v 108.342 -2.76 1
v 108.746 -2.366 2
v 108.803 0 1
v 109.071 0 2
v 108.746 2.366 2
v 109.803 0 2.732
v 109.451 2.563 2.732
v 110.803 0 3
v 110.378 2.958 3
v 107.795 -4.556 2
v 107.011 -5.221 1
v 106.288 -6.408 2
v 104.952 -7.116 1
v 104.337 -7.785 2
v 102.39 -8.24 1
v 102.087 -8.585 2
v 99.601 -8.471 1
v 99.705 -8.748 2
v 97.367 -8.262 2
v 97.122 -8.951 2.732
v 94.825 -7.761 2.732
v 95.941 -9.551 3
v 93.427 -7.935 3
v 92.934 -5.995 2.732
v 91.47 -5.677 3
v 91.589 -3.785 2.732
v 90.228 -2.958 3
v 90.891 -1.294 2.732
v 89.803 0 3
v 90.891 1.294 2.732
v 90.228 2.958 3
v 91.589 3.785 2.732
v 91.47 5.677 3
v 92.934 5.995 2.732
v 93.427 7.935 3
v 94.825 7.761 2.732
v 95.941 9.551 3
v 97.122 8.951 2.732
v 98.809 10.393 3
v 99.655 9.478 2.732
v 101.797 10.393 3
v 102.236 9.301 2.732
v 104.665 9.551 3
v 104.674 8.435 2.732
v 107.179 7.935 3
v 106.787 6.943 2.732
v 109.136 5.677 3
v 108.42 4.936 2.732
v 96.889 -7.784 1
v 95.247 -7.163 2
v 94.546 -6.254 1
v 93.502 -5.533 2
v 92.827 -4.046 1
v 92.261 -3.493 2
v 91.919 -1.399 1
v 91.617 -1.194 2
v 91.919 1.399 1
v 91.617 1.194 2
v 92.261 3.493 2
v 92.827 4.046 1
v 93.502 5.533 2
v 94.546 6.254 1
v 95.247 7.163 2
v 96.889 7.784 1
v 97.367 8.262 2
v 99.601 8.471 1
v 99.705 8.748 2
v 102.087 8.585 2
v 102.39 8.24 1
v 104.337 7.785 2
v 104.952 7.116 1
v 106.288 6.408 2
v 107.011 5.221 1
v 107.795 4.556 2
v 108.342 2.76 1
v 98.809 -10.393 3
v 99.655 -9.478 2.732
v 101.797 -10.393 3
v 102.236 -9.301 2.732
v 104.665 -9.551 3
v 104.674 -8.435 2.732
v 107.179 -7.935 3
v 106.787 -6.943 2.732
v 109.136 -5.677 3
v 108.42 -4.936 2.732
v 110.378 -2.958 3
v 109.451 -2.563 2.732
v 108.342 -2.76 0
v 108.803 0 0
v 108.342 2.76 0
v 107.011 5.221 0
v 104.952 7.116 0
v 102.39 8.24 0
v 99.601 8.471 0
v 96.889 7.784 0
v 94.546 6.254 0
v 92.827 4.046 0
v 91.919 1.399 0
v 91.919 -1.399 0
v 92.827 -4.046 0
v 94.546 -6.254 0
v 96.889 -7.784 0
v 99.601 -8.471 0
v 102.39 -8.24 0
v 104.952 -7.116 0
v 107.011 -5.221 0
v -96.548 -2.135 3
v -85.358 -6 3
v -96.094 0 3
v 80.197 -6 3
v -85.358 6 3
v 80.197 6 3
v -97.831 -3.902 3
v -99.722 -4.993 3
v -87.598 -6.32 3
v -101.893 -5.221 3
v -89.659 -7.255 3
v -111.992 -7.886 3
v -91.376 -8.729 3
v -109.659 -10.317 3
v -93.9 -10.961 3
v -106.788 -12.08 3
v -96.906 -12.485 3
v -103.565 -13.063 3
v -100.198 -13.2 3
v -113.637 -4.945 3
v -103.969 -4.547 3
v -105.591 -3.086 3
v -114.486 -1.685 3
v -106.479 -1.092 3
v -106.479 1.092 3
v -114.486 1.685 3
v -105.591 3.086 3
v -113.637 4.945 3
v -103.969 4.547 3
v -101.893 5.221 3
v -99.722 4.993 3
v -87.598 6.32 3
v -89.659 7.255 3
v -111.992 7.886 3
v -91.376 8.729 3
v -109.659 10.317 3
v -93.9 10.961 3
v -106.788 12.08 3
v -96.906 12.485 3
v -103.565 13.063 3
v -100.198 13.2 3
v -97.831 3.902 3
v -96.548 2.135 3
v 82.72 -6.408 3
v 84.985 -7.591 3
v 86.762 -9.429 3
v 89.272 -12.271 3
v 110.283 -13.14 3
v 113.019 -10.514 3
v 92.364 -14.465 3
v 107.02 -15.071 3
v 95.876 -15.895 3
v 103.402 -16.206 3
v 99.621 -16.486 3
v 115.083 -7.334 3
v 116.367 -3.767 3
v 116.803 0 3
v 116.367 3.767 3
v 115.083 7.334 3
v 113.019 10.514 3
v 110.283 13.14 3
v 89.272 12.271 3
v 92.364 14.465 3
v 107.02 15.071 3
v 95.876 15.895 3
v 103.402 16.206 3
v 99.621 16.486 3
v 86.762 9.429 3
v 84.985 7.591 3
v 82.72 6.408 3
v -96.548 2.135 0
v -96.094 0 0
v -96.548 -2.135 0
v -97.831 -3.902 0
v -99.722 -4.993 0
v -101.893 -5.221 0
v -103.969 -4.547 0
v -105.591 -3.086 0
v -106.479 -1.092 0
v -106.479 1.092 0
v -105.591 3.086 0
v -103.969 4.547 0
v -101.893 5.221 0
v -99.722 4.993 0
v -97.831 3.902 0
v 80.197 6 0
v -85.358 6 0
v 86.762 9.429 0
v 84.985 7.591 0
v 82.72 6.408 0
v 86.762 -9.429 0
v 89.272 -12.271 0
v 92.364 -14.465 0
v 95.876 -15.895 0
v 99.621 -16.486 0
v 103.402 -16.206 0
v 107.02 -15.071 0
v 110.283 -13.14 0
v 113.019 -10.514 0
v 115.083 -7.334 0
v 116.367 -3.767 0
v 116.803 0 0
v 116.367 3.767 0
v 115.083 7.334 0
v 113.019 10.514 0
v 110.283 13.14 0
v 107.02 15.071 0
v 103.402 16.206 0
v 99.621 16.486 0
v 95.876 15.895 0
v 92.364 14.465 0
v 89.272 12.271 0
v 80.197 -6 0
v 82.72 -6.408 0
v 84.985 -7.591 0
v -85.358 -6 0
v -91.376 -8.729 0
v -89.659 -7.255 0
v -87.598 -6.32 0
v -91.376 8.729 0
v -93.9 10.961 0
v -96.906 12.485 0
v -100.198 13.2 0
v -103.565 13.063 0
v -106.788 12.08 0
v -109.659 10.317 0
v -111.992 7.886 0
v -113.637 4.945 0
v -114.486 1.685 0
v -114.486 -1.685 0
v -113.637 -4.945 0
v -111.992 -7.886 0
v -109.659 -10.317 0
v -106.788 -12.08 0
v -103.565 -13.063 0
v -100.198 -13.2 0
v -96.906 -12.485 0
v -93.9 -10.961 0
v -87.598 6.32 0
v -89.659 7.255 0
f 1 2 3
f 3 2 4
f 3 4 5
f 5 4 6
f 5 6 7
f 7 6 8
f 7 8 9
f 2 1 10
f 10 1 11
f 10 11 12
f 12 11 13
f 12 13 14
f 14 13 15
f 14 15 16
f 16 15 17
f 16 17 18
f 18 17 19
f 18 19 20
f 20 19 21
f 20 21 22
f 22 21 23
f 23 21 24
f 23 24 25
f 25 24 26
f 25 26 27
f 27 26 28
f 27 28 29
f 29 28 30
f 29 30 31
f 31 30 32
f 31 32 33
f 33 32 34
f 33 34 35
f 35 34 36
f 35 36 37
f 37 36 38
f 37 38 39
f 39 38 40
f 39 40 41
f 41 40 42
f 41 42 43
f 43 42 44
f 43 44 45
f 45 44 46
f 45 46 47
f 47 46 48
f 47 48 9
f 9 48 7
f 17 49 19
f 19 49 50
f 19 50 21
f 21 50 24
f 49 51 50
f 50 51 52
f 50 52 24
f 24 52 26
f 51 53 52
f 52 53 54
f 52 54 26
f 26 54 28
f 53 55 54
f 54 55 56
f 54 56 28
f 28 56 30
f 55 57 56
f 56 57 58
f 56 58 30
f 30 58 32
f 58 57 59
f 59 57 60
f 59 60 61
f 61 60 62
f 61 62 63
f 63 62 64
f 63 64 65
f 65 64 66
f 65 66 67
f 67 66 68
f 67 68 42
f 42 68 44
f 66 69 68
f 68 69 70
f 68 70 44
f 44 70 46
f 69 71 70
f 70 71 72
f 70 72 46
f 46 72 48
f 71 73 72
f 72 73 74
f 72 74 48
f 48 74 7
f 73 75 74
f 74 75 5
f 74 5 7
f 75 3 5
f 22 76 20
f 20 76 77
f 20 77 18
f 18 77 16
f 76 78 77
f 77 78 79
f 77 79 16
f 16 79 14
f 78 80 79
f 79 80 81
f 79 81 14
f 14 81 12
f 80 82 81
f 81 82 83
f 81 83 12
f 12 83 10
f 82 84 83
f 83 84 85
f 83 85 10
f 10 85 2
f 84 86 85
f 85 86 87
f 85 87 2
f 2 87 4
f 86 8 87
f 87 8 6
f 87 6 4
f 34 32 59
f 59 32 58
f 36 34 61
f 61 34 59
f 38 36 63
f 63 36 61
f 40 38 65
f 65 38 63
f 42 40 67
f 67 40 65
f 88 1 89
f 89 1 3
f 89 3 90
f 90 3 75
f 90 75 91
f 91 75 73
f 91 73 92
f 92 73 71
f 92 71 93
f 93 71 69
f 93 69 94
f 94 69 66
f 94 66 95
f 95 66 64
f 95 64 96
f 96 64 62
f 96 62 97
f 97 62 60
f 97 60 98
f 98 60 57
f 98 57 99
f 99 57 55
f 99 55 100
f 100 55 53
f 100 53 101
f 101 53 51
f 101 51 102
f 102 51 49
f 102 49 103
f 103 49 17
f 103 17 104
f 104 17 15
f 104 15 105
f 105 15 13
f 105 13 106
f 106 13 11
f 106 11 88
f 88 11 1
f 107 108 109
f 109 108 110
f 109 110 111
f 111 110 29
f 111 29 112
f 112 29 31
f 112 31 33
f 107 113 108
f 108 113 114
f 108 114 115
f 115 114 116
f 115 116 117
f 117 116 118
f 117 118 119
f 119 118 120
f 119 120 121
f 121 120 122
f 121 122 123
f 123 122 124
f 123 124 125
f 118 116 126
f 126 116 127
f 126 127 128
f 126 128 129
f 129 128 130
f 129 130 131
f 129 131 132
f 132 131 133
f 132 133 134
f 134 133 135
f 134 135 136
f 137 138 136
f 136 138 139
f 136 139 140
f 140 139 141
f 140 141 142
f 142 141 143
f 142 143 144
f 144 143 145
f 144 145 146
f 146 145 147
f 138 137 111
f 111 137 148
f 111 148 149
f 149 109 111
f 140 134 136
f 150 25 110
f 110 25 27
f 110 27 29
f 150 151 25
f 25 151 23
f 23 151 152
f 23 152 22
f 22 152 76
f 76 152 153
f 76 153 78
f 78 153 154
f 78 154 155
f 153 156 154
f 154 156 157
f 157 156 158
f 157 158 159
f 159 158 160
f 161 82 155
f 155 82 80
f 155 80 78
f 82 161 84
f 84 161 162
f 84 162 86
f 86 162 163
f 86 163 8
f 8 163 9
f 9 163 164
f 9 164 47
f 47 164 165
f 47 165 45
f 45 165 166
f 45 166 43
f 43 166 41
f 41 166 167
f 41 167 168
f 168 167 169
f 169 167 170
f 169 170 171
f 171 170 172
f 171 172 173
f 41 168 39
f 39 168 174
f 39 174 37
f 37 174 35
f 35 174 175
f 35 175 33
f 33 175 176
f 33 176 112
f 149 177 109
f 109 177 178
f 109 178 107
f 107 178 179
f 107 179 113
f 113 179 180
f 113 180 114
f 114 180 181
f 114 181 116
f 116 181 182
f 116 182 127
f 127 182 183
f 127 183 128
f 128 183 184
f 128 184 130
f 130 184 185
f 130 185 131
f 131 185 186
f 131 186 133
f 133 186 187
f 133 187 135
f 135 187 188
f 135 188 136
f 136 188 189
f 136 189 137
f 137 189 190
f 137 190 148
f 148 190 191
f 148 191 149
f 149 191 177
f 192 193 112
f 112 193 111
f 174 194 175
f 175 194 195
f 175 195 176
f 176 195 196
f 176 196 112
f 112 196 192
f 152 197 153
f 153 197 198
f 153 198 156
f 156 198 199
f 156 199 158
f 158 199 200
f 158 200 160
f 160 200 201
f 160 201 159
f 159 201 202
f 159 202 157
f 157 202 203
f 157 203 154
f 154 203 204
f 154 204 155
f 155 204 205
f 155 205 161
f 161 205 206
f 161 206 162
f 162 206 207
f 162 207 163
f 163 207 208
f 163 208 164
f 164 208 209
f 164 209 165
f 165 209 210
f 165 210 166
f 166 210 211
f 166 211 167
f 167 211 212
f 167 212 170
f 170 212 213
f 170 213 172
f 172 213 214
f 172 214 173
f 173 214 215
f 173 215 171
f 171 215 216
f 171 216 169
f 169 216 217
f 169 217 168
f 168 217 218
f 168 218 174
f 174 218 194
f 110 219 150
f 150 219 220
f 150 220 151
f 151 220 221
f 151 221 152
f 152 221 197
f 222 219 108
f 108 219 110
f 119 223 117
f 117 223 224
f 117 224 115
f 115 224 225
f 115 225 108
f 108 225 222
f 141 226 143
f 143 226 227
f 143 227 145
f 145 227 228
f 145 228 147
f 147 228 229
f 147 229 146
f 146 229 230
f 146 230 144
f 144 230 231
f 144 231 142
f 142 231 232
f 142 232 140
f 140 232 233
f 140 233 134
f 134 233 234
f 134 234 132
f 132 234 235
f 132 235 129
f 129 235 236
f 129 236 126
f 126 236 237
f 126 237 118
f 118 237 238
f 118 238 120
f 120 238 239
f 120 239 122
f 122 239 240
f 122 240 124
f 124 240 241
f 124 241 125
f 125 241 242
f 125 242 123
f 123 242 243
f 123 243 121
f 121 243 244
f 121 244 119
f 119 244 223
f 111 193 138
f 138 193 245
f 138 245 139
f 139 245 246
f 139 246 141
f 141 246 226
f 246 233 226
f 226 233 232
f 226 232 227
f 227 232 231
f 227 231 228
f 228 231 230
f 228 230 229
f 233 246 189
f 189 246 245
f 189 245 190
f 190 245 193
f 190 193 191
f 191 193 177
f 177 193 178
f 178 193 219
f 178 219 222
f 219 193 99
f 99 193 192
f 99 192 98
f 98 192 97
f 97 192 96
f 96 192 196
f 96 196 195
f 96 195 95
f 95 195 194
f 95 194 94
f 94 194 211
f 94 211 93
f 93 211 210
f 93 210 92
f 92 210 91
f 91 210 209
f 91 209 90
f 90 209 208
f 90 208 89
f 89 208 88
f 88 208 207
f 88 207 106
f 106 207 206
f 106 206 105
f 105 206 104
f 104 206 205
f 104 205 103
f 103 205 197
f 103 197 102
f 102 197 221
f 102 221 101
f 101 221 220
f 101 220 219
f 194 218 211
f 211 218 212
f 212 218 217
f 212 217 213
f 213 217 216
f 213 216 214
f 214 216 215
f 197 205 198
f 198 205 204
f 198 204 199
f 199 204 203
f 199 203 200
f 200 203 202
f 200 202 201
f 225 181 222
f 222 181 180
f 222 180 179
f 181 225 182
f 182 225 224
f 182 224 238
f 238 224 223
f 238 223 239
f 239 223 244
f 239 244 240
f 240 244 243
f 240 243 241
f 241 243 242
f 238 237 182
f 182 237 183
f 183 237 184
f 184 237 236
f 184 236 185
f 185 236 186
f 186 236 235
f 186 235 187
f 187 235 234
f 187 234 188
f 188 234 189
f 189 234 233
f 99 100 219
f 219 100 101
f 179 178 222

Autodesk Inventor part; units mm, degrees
ref_plane "YZ Plane" through (0, 0, 0) normal (1, 0, 0) x (0, 1, 0)
ref_plane "XZ Plane" through (0, 0, 0) normal (0, 1, 0) x (-1, 0, 0)
ref_plane "XY Plane" through (0, 0, 0) normal (0, 0, 1) x (1, 0, 0)
sketch "Sketch1" plane through (0, 0, 0) normal (0, 0, 1) x (1, 0, 0)
  line L0 (0, 0) -> (-34.0118, 0)
  line L1 (0, 0) -> (0, 29.864)
  circle A0 centre (-101.344, 0) radius 5.25
  arc A1 (-91.3761, 8.7294) -> (-91.3761, -8.7294) centre (-101.344, 0) ccw
  arc A2 (86.7622, -9.4286) -> (86.7622, 9.4286) centre (100.303, 0) ccw
  line L2 (-85.3577, 6) -> (80.197, 6)
  line L3 (-85.3577, -6) -> (80.197, -6)
  arc A3 (-91.3761, 8.7294) -> (-85.3577, 6) centre (-85.3577, 14) ccw
  arc A4 (-85.3577, -6) -> (-91.3761, -8.7294) centre (-85.3577, -14) ccw
  arc A5 (80.197, 6) -> (86.7622, 9.4286) centre (80.197, 14) ccw
  arc A6 (86.7622, -9.4286) -> (80.197, -6) centre (80.197, -14) ccw
  circle A7 centre (100.303, 0) radius 8.5
  point P0 (-89.5303, 6)
  point P1 (84.9326, 6)
  point P2 (-89.5303, -6)
  point P3 (84.9326, -6)
  dimension "d0" = 201.647
  dimension "d1" = 10.5
  dimension "d2" = 8
  dimension "d4" = 12
  dimension "d5" = 8
  dimension "d9" = 17
  dimension "d10" = 8
extrude "Extrusion1" add sketch "Sketch1" along normal blind 3
fillet "Fillet1" radius 2 1 edges at (91.803, 0, 3)
properties part number "destek bağlantısı" material "Polystyrene"
